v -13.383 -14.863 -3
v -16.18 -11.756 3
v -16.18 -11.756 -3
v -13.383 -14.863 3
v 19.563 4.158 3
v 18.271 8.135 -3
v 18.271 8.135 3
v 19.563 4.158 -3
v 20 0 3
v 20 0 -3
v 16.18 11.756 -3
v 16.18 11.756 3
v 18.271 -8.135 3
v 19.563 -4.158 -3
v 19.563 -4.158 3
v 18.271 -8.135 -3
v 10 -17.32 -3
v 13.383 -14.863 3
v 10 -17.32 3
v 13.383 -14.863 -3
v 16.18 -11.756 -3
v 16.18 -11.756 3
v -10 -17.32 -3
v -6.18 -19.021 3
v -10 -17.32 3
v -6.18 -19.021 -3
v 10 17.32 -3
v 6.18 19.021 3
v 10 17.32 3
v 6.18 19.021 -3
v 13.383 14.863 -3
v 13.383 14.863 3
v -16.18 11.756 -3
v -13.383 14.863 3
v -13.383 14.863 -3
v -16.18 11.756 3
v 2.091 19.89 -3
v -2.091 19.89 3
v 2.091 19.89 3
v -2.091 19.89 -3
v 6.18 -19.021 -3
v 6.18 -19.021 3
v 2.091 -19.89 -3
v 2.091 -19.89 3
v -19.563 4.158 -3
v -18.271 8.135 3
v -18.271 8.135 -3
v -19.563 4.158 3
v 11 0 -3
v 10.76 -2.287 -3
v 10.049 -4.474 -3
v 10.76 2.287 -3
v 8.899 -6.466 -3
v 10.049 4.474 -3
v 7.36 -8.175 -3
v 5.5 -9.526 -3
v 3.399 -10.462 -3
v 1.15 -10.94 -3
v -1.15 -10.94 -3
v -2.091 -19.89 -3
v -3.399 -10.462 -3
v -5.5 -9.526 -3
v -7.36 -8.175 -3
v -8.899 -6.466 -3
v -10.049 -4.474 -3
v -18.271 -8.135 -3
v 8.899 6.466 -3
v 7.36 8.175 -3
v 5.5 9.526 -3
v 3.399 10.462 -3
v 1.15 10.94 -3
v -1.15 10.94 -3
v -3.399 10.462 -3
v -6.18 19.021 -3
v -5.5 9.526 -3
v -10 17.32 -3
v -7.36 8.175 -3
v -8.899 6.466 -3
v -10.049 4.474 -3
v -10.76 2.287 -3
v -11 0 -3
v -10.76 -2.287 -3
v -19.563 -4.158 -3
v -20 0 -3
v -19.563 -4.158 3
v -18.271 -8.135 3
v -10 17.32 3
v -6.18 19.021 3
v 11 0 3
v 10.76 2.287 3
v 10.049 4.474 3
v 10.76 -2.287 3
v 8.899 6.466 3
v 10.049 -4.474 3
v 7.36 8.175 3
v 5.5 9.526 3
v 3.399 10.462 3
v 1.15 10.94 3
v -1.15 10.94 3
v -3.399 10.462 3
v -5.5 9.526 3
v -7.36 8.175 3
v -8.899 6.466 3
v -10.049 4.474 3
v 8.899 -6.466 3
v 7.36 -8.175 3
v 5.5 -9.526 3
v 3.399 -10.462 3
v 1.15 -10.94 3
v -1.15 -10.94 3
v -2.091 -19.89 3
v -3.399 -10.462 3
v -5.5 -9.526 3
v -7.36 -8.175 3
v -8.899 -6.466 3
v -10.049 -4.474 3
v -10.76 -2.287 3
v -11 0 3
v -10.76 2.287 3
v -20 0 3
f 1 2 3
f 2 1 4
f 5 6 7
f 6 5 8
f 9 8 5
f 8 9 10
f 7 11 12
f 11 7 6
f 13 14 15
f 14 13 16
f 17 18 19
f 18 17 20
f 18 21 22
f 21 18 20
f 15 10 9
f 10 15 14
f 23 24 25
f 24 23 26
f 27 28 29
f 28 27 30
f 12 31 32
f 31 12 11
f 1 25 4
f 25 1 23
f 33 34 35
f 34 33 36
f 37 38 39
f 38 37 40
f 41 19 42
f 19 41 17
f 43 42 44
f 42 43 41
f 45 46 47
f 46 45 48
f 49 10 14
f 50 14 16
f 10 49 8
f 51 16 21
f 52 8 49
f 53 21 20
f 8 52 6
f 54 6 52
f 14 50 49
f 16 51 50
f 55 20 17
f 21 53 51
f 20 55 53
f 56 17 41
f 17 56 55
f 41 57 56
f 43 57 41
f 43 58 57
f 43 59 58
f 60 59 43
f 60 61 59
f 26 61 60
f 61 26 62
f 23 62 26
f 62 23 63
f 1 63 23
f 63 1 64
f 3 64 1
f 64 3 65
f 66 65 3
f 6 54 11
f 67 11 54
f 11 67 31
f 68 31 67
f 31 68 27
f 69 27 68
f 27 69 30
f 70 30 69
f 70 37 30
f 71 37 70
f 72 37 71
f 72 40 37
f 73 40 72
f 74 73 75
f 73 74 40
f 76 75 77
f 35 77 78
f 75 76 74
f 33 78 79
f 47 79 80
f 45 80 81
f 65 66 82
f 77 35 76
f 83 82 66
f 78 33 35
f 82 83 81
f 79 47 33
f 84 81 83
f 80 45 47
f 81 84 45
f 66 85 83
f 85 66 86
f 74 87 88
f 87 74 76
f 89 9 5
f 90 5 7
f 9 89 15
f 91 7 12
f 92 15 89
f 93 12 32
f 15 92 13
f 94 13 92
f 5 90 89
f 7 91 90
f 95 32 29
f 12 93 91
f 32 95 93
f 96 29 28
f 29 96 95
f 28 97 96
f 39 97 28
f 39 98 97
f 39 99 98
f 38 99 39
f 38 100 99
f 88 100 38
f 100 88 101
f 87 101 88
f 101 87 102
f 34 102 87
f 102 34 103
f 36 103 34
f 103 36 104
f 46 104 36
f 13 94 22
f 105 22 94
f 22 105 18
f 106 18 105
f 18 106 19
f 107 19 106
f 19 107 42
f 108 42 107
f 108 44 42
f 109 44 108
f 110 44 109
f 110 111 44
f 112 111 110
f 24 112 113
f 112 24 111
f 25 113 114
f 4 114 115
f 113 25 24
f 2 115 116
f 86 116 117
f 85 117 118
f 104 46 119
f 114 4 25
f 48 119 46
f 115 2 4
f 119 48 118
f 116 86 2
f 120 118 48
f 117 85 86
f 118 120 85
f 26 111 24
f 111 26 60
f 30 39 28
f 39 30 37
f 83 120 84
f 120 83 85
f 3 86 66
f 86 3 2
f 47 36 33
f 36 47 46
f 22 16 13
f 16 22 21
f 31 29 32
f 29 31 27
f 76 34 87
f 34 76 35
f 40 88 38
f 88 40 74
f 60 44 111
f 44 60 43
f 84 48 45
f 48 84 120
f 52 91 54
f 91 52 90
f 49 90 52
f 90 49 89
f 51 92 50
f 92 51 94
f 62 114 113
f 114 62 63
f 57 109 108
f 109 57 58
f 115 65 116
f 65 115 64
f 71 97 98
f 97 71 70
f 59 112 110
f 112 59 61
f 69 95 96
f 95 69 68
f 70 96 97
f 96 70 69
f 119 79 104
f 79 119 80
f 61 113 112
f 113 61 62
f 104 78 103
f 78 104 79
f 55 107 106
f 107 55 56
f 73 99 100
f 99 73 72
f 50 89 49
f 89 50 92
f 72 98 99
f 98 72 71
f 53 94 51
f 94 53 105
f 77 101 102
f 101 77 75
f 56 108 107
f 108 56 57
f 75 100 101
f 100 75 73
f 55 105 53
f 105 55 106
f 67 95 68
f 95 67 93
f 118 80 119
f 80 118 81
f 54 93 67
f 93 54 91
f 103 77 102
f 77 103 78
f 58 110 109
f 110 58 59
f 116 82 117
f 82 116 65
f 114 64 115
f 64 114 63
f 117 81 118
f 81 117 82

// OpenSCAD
// Parameters for the spacer ring
ring_outer_diameter = 40; // Outer diameter of the ring
ring_inner_diameter = 22; // Inner diameter (hollow center)
ring_thickness = 6;       // Reduced thickness of the ring to match the original model
fillet_radius = 1;        // Radius for smoothing edges

// Spacer ring generation
difference() {
    // Outer cylinder (main body of the ring)
    cylinder(h = ring_thickness, d = ring_outer_diameter, center = true);
    
    // Inner cylinder (hollow center) with filleted edges
    translate([0, 0, -fillet_radius]) {
        cylinder(h = ring_thickness + 2 * fillet_radius, d = ring_inner_diameter, center = true);
    }
}
